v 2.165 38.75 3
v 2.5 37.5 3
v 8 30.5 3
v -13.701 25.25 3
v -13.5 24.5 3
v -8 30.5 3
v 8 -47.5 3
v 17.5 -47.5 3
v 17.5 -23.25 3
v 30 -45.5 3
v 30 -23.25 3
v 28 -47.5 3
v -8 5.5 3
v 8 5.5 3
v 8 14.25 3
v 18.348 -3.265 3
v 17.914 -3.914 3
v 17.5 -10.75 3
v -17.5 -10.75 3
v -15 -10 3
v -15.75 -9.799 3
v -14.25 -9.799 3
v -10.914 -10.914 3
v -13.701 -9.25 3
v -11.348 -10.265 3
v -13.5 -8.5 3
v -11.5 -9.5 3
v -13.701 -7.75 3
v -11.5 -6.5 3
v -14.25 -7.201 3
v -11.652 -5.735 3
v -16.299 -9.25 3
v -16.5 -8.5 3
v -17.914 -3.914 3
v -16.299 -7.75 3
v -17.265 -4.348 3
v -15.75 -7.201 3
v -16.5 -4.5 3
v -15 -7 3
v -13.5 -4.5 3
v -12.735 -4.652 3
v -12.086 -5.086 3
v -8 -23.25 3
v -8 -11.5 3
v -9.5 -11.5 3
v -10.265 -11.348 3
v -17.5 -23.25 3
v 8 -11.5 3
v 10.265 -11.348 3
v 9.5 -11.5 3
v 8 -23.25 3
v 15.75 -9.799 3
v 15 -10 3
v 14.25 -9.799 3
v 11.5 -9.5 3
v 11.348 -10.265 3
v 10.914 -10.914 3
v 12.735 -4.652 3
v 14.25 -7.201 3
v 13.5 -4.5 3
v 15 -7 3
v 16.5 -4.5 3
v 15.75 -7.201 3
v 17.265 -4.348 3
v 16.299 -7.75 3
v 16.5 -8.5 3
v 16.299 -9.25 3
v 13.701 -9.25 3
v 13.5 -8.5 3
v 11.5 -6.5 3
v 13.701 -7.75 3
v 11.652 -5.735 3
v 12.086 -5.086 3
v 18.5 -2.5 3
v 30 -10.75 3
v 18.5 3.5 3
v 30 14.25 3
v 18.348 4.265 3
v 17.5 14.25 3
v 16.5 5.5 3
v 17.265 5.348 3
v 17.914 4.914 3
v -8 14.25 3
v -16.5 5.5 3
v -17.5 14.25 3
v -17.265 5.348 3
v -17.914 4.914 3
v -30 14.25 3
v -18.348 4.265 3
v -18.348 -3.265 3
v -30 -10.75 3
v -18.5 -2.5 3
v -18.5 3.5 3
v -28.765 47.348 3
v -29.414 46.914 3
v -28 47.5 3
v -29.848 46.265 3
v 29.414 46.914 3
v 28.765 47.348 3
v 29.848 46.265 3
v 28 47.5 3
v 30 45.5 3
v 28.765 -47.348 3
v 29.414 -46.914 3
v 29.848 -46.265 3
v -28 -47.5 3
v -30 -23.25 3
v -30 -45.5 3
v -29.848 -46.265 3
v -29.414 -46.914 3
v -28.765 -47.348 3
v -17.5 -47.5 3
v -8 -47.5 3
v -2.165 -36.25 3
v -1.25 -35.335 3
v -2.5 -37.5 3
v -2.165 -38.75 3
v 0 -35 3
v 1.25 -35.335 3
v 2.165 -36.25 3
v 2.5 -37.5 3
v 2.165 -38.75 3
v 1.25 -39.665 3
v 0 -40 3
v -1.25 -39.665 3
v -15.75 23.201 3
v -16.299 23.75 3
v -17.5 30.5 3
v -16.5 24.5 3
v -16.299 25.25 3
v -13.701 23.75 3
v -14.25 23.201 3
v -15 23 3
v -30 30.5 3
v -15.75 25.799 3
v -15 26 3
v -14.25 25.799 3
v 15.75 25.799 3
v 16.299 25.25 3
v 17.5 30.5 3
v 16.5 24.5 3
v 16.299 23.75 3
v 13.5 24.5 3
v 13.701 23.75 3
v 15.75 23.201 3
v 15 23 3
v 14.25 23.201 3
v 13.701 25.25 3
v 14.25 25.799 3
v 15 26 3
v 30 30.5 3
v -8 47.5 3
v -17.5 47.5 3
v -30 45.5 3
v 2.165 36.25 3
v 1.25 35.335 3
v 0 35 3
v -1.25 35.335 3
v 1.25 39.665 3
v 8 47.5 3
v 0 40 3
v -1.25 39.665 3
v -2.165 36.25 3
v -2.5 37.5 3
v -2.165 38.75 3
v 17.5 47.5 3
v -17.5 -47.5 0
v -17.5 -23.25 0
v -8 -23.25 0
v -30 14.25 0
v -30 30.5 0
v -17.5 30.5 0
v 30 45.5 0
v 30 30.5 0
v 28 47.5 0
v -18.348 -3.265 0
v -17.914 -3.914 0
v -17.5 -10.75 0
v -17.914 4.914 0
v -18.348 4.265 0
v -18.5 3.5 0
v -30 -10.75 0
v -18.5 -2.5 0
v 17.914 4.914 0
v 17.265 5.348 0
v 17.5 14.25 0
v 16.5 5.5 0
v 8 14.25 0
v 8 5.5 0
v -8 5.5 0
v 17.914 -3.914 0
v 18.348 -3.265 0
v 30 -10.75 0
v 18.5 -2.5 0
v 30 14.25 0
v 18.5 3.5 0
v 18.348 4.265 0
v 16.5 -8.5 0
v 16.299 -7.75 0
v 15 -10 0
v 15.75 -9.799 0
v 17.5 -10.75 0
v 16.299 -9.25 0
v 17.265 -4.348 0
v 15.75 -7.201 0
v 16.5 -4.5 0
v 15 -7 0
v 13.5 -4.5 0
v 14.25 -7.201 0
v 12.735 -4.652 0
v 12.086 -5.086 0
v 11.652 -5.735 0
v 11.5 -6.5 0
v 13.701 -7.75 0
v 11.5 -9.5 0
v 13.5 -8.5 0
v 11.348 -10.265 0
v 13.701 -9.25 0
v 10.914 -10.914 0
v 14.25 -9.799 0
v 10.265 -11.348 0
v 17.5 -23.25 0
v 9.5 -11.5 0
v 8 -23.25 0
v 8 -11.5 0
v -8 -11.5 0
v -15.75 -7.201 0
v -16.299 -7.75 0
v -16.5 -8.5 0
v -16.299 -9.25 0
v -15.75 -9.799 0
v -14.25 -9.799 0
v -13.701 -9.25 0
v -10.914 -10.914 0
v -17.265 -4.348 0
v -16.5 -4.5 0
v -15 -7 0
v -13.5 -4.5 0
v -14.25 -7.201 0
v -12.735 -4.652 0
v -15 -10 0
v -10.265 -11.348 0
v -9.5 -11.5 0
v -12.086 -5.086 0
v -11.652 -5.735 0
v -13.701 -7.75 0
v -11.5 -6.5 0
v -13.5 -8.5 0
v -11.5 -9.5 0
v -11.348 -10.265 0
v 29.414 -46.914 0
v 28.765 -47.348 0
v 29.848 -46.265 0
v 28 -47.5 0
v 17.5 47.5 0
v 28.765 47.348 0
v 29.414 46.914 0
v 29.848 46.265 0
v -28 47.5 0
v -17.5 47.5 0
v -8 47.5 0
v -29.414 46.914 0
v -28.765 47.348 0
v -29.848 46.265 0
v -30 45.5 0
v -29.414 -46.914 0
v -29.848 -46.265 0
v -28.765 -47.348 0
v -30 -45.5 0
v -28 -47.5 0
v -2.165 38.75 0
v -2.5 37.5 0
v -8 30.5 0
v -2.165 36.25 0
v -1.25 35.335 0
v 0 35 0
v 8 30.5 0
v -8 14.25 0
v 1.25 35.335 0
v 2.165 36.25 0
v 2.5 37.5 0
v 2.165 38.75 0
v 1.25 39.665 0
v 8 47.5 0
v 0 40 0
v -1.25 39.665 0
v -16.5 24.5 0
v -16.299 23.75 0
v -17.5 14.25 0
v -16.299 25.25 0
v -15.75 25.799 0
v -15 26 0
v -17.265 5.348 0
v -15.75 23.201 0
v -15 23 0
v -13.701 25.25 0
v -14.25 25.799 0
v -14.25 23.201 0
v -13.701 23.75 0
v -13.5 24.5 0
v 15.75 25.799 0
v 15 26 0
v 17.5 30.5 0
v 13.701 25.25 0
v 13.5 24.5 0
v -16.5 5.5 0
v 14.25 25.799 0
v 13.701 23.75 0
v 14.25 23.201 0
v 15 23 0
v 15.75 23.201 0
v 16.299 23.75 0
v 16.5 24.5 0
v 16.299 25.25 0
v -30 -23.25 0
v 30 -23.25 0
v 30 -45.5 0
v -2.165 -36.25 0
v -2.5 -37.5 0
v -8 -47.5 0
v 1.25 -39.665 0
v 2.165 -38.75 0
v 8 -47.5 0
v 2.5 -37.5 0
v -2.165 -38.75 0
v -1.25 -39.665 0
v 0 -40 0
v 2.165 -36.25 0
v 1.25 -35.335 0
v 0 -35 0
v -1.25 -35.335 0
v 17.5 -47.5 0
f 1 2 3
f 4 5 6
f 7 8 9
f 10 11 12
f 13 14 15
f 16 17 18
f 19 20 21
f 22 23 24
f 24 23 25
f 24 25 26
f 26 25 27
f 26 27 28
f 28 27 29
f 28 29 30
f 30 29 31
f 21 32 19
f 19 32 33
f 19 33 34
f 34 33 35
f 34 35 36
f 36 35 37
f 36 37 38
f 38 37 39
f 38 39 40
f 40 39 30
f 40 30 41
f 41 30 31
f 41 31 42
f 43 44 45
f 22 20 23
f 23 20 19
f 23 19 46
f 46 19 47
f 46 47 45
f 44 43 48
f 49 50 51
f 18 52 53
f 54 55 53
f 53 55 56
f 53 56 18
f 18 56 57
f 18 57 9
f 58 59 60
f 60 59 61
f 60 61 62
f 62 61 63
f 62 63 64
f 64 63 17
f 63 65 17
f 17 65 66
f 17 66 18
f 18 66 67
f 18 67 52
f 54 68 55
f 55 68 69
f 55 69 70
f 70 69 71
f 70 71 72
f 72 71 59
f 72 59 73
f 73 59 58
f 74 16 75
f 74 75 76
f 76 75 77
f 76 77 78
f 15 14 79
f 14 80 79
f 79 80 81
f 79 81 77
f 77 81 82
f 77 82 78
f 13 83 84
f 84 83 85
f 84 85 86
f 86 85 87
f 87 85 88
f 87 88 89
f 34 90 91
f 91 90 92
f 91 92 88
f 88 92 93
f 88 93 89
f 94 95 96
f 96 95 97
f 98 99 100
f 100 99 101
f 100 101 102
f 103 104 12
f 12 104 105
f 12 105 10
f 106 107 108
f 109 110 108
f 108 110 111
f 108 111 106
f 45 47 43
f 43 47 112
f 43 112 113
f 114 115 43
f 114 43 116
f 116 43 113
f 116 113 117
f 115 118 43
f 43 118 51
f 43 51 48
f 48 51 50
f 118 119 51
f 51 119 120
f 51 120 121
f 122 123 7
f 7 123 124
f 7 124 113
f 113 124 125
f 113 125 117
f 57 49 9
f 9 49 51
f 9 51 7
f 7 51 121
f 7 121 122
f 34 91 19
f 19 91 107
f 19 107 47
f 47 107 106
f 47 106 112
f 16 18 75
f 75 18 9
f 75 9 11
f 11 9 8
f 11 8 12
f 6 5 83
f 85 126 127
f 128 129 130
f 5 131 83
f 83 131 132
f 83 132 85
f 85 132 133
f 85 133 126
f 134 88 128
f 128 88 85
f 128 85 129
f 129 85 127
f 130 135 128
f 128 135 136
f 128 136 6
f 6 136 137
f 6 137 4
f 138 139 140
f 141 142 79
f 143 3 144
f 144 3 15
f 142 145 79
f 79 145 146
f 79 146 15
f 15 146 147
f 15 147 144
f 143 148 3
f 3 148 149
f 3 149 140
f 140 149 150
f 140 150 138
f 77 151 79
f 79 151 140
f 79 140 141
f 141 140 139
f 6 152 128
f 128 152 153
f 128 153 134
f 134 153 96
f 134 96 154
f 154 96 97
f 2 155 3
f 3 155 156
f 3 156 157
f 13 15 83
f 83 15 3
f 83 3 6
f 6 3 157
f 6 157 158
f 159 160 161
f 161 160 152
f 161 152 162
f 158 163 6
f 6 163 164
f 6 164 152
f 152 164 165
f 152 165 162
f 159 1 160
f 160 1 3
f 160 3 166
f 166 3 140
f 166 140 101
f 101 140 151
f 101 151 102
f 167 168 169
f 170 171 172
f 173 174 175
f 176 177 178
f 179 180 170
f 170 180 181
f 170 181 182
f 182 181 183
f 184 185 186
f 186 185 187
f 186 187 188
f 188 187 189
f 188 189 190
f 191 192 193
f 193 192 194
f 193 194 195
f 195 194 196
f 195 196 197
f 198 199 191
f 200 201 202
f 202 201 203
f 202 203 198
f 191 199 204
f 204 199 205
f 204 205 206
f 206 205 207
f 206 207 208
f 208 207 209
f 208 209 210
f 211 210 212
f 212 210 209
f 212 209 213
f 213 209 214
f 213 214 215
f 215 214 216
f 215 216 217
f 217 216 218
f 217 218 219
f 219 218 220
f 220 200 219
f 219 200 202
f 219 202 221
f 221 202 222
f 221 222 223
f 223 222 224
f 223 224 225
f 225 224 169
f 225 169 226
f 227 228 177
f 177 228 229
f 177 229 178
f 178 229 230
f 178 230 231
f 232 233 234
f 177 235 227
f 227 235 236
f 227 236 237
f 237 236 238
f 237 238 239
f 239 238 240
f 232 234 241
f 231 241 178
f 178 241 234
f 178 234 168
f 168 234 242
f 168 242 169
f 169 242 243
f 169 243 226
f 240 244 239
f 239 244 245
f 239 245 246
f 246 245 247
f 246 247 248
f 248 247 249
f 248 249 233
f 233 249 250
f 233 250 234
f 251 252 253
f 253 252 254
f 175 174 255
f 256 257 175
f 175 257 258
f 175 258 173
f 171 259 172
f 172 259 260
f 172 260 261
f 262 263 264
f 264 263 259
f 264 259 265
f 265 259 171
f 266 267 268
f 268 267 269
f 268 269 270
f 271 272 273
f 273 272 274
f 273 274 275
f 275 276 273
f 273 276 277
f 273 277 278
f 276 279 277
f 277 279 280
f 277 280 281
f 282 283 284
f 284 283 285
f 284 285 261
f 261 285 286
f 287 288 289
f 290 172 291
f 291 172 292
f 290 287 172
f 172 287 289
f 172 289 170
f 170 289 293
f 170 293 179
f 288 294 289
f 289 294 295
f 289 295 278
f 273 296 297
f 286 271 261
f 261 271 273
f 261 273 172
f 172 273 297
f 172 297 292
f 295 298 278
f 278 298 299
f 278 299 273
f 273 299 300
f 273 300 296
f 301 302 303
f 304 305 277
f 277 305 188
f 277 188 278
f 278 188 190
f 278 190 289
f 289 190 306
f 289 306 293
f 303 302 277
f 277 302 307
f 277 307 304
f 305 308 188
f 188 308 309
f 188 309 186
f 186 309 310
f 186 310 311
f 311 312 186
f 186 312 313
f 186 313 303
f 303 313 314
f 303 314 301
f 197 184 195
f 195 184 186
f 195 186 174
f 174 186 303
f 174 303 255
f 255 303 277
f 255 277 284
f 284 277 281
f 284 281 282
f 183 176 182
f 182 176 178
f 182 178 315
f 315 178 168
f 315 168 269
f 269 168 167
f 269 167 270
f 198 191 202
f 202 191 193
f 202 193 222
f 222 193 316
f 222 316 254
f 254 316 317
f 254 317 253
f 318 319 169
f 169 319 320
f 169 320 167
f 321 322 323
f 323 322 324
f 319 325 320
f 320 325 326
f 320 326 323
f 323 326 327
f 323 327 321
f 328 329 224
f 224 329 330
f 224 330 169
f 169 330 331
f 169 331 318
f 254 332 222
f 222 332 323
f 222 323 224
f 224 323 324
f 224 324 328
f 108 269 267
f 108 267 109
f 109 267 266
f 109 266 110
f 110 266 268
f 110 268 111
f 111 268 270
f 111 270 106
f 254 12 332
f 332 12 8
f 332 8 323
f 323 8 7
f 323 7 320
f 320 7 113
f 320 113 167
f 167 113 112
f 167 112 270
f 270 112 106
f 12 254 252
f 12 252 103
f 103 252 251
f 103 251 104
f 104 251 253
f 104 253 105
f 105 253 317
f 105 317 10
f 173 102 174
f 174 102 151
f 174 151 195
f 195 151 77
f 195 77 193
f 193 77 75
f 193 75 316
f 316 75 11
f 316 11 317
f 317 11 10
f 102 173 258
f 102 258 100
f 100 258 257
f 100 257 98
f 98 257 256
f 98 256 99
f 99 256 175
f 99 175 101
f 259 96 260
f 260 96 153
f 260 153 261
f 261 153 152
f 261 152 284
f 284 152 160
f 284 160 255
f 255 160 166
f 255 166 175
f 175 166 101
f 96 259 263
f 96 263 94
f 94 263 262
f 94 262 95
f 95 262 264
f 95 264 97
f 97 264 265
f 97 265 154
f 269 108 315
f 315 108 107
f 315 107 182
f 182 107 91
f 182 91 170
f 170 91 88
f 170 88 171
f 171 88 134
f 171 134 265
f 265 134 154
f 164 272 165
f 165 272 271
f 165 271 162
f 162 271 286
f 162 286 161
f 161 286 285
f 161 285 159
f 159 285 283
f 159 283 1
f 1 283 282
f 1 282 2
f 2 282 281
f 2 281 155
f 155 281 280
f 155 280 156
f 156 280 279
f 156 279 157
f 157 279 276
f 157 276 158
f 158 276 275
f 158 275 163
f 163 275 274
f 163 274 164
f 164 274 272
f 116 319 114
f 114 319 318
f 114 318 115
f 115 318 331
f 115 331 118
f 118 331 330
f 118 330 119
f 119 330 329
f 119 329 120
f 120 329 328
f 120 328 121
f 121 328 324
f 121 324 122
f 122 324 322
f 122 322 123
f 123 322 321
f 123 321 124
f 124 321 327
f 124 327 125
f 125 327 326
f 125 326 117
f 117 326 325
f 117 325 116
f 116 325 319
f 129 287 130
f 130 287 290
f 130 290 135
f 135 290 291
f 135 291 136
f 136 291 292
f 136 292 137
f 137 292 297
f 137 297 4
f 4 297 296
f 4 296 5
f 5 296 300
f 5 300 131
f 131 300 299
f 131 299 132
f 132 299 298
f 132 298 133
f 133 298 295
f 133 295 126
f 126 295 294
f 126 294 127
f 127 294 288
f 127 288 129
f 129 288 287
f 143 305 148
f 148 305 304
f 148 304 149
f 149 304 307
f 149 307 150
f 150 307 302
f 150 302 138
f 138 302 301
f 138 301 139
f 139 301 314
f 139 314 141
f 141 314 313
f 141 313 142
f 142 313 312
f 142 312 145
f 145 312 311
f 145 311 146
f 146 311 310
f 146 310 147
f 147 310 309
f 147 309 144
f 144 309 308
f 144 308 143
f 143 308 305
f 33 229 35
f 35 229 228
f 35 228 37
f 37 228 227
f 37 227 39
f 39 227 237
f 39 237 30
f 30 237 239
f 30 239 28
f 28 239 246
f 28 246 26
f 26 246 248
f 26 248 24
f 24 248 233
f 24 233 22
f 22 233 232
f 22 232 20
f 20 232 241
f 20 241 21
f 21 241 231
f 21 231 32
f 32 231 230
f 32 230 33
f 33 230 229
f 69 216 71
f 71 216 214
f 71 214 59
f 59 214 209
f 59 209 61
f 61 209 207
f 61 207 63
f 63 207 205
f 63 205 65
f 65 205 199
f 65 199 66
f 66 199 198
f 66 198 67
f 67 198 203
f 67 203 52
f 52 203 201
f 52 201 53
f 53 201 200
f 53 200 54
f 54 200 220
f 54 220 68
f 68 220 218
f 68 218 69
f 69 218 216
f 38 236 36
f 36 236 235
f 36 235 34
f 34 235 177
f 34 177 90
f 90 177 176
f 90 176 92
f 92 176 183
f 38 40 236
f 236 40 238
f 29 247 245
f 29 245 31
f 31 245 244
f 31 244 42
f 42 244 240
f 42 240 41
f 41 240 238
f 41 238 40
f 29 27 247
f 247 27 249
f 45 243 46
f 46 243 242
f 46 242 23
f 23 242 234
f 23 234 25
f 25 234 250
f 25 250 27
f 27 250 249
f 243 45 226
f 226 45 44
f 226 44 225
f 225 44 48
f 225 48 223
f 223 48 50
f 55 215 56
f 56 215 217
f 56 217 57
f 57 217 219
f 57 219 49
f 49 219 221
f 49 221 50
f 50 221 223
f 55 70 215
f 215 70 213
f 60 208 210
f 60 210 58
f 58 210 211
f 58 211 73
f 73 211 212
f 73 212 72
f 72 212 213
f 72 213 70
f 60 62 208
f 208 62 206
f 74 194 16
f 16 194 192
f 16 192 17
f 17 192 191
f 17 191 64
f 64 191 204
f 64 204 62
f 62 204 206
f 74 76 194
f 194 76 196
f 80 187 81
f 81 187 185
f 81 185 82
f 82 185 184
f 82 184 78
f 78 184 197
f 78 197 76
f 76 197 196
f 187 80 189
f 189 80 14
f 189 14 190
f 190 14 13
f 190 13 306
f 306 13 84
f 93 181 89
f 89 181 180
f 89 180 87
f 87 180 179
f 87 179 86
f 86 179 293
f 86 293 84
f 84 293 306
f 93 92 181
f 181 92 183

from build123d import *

# Parameters (mm, degrees)
SKETCH1_R           = 2.5
SKETCH1_R_2         = 1.5
BOSS_EXTRUDE1_DEPTH = 3


with BuildPart() as part:
    # Sketch1 → Boss-Extrude1 (new body)
    with BuildSketch(Plane.XY):
        with BuildLine():
            Line((-28, -47.5), (28, -47.5))
            ThreePointArc((28, -47.5), (29.414213562, -46.914213562), (30, -45.5))
            Line((30, -45.5), (30, 45.5))
            ThreePointArc((30, 45.5), (29.414213562, 46.914213562), (28, 47.5))
            Line((28, 47.5), (-28, 47.5))
            ThreePointArc((-28, 47.5), (-29.414213562, 46.914213562), (-30, 45.5))
            Line((-30, 45.5), (-30, -45.5))
            ThreePointArc((-30, -45.5), (-29.414213562, -46.914213562), (-28, -47.5))
        make_face()
        with Locations((0, 37.5)):
            Circle(SKETCH1_R, mode=Mode.SUBTRACT)
        with Locations((0, -37.5)):
            Circle(SKETCH1_R, mode=Mode.SUBTRACT)
        with Locations((-15, 24.5)):
            Circle(SKETCH1_R_2, mode=Mode.SUBTRACT)
        with Locations((15, 24.5)):
            Circle(SKETCH1_R_2, mode=Mode.SUBTRACT)
        with Locations((-15, -8.5)):
            Circle(SKETCH1_R_2, mode=Mode.SUBTRACT)
        with Locations((15, -8.5)):
            Circle(SKETCH1_R_2, mode=Mode.SUBTRACT)
        with BuildLine():
            Line((-11.5, -9.5), (-11.5, -6.5))
            ThreePointArc((-11.5, -6.5), (-12.085786438, -5.085786438), (-13.5, -4.5))
            Line((-13.5, -4.5), (-16.5, -4.5))
            ThreePointArc((-16.5, -4.5), (-17.914213562, -3.914213562), (-18.5, -2.5))
            Line((-18.5, -2.5), (-18.5, 3.5))
            ThreePointArc((-18.5, 3.5), (-17.914213562, 4.914213562), (-16.5, 5.5))
            Line((-16.5, 5.5), (16.5, 5.5))
            ThreePointArc((16.5, 5.5), (17.914213562, 4.914213562), (18.5, 3.5))
            Line((18.5, 3.5), (18.5, -2.5))
            ThreePointArc((18.5, -2.5), (17.914213562, -3.914213562), (16.5, -4.5))
            Line((16.5, -4.5), (13.5, -4.5))
            ThreePointArc((13.5, -4.5), (12.085786438, -5.085786438), (11.5, -6.5))
            Line((11.5, -6.5), (11.5, -9.5))
            ThreePointArc((11.5, -9.5), (10.914213562, -10.914213562), (9.5, -11.5))
            Line((9.5, -11.5), (-9.5, -11.5))
            ThreePointArc((-9.5, -11.5), (-10.914213562, -10.914213562), (-11.5, -9.5))
        make_face(mode=Mode.SUBTRACT)
    extrude(amount=BOSS_EXTRUDE1_DEPTH)


solid = part.part
